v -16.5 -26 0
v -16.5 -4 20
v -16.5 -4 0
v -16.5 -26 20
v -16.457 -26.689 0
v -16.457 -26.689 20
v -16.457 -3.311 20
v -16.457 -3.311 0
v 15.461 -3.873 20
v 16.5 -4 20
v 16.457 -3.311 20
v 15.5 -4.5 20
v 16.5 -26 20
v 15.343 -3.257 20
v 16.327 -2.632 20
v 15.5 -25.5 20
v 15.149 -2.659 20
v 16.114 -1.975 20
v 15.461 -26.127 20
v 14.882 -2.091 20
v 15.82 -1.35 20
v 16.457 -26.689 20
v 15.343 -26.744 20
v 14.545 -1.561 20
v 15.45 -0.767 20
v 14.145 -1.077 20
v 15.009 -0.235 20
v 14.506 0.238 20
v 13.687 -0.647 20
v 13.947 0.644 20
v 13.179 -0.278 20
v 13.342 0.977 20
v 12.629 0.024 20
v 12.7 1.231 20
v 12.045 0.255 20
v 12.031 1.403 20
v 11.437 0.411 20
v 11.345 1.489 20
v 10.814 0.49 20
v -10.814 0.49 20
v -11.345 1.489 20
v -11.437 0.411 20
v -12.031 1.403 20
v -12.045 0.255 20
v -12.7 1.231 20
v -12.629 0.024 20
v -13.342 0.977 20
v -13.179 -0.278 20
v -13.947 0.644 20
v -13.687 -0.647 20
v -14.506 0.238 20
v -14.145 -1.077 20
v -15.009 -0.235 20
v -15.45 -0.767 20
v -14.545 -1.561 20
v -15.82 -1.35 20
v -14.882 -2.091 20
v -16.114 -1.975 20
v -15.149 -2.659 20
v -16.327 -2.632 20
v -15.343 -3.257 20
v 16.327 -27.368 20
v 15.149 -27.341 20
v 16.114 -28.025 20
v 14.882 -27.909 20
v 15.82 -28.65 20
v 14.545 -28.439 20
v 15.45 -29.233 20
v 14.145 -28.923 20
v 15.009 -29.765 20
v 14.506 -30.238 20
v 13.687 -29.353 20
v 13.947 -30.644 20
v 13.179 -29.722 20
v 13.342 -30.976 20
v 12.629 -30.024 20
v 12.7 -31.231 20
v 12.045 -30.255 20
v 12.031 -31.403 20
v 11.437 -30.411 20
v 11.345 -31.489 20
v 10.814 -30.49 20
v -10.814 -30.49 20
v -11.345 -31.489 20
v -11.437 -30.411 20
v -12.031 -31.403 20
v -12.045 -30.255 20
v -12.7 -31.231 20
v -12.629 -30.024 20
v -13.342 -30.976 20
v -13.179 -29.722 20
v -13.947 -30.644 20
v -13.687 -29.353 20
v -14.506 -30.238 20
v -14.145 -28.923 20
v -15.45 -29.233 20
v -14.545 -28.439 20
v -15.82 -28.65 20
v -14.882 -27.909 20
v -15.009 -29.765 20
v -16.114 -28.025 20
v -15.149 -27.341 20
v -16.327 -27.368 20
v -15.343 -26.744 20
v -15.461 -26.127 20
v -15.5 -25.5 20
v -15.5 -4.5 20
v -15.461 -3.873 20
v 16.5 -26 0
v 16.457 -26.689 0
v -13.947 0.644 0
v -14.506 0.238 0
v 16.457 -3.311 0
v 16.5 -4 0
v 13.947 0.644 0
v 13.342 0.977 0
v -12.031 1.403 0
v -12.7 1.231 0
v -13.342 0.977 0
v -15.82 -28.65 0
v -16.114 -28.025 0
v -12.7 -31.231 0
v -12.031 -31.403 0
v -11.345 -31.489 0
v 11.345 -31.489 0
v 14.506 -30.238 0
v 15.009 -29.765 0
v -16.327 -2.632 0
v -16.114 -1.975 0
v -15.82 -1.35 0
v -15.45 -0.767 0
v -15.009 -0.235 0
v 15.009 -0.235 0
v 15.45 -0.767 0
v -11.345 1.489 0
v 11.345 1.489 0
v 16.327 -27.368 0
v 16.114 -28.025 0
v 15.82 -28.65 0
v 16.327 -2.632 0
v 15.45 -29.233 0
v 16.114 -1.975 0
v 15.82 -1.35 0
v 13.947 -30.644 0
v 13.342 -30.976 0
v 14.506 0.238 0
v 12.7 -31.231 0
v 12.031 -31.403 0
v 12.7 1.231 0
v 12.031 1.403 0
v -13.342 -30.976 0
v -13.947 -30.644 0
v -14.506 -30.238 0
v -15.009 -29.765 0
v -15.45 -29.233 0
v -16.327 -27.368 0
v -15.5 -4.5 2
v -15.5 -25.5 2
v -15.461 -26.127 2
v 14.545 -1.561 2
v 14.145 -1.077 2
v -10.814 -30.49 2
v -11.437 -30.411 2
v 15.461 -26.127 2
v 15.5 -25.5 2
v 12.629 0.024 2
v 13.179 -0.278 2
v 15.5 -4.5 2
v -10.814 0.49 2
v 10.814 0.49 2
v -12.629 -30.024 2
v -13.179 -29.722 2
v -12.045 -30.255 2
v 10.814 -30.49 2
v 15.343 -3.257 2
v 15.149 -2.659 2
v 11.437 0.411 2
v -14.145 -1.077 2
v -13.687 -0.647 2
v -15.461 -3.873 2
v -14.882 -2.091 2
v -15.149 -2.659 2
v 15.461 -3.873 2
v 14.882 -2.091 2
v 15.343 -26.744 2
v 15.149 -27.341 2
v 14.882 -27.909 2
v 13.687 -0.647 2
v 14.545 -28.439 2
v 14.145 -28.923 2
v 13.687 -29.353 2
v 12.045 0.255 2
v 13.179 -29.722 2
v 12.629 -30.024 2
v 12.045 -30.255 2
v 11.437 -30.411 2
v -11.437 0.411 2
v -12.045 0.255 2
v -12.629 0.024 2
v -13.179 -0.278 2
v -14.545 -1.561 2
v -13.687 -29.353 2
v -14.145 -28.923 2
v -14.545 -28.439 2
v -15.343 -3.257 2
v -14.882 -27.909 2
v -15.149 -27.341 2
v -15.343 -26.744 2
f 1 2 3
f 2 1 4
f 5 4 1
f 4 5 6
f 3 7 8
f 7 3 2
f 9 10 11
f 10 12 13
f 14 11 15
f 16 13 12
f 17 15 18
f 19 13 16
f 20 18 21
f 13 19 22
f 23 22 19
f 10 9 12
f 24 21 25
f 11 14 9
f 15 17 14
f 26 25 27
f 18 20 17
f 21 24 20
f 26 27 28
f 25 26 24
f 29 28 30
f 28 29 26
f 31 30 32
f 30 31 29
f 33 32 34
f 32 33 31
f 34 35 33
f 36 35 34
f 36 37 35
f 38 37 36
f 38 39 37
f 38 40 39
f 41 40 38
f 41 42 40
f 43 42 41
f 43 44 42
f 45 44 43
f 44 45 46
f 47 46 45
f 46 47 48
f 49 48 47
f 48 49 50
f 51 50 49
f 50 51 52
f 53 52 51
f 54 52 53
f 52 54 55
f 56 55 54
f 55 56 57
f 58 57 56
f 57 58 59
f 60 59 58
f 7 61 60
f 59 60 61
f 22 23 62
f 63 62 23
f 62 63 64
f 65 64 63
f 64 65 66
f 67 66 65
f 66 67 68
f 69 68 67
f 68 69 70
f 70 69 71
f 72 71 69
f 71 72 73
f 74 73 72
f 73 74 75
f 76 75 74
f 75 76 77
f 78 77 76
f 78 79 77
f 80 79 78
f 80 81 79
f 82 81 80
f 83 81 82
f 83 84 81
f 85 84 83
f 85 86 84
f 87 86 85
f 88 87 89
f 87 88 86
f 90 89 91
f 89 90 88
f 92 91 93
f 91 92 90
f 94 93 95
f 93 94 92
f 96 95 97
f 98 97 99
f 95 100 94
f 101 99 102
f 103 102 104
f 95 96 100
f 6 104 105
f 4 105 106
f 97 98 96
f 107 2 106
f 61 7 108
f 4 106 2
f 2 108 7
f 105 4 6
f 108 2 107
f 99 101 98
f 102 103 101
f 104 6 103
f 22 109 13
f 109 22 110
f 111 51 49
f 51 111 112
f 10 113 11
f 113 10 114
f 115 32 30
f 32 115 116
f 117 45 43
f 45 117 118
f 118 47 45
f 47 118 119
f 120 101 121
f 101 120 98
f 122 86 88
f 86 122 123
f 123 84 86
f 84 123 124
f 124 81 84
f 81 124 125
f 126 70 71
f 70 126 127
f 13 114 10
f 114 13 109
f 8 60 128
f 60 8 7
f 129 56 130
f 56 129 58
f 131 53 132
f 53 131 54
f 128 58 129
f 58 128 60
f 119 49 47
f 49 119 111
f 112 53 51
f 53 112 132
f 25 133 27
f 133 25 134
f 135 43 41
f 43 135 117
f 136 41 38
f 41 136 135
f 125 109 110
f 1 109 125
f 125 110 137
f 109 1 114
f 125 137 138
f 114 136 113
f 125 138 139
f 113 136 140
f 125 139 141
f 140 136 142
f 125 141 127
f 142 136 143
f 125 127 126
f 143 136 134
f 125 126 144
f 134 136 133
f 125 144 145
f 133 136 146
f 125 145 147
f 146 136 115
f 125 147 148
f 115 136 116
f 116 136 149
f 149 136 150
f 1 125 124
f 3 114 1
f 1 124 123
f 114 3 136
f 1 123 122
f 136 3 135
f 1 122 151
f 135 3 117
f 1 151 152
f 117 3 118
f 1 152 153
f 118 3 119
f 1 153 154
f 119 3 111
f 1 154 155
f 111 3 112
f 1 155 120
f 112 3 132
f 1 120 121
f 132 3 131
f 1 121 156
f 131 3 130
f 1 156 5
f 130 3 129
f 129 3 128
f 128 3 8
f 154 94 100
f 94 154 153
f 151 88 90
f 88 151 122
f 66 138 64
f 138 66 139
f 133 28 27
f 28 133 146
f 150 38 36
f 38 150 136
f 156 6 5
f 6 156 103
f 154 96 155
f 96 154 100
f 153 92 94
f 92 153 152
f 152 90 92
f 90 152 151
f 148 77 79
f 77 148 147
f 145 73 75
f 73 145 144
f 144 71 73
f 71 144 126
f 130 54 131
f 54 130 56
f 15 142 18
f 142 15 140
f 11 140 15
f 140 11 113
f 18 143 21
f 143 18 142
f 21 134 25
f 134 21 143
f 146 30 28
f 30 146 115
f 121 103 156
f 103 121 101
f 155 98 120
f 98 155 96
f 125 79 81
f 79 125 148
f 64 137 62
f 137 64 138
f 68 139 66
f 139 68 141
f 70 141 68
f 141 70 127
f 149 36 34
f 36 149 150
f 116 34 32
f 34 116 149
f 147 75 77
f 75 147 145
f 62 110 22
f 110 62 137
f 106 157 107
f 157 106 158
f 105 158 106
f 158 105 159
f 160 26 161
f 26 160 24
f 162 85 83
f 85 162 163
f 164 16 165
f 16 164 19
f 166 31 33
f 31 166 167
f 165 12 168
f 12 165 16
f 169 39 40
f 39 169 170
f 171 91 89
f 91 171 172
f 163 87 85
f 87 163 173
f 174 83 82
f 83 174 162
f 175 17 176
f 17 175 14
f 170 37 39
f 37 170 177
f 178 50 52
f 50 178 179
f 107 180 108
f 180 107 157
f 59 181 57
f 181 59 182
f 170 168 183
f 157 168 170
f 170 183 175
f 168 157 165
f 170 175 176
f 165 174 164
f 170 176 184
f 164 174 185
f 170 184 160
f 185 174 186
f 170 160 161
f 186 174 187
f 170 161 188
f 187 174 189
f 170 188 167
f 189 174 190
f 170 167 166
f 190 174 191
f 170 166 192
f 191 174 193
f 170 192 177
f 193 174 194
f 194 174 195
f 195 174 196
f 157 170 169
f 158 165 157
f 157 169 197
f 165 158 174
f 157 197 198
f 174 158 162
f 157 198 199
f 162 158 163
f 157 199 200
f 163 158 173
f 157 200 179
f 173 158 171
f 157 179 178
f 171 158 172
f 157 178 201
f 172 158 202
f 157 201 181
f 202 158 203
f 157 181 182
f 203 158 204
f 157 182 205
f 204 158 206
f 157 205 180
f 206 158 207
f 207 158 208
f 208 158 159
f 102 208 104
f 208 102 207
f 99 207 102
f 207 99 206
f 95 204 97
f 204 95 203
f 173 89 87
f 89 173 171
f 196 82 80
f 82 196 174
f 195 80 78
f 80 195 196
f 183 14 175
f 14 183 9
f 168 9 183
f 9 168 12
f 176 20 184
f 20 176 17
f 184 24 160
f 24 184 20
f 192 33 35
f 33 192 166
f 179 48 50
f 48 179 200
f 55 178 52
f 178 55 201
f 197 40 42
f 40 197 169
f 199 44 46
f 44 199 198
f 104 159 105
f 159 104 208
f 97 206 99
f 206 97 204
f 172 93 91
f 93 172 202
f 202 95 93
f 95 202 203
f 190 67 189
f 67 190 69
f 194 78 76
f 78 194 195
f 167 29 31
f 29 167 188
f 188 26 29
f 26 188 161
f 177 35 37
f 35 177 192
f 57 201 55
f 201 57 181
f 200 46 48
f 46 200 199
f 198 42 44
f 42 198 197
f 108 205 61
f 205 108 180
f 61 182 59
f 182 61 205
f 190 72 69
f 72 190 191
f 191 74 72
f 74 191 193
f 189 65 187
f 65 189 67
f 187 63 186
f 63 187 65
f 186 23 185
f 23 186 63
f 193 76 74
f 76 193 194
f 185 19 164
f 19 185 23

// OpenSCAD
$fn = 50;


difference() {
	union() {
		translate(v = [0, -15.0000000000, 0]) {
			hull() {
				translate(v = [-11.0000000000, 11.0000000000, 0]) {
					cylinder(h = 20, r = 5.5000000000);
				}
				translate(v = [11.0000000000, 11.0000000000, 0]) {
					cylinder(h = 20, r = 5.5000000000);
				}
				translate(v = [-11.0000000000, -11.0000000000, 0]) {
					cylinder(h = 20, r = 5.5000000000);
				}
				translate(v = [11.0000000000, -11.0000000000, 0]) {
					cylinder(h = 20, r = 5.5000000000);
				}
			}
		}
	}
	union() {
		translate(v = [0, -15.0000000000, 2]) {
			hull() {
				translate(v = [-10.5000000000, 10.5000000000, 0]) {
					cylinder(h = 40, r = 5);
				}
				translate(v = [10.5000000000, 10.5000000000, 0]) {
					cylinder(h = 40, r = 5);
				}
				translate(v = [-10.5000000000, -10.5000000000, 0]) {
					cylinder(h = 40, r = 5);
				}
				translate(v = [10.5000000000, -10.5000000000, 0]) {
					cylinder(h = 40, r = 5);
				}
			}
		}
	}
}
